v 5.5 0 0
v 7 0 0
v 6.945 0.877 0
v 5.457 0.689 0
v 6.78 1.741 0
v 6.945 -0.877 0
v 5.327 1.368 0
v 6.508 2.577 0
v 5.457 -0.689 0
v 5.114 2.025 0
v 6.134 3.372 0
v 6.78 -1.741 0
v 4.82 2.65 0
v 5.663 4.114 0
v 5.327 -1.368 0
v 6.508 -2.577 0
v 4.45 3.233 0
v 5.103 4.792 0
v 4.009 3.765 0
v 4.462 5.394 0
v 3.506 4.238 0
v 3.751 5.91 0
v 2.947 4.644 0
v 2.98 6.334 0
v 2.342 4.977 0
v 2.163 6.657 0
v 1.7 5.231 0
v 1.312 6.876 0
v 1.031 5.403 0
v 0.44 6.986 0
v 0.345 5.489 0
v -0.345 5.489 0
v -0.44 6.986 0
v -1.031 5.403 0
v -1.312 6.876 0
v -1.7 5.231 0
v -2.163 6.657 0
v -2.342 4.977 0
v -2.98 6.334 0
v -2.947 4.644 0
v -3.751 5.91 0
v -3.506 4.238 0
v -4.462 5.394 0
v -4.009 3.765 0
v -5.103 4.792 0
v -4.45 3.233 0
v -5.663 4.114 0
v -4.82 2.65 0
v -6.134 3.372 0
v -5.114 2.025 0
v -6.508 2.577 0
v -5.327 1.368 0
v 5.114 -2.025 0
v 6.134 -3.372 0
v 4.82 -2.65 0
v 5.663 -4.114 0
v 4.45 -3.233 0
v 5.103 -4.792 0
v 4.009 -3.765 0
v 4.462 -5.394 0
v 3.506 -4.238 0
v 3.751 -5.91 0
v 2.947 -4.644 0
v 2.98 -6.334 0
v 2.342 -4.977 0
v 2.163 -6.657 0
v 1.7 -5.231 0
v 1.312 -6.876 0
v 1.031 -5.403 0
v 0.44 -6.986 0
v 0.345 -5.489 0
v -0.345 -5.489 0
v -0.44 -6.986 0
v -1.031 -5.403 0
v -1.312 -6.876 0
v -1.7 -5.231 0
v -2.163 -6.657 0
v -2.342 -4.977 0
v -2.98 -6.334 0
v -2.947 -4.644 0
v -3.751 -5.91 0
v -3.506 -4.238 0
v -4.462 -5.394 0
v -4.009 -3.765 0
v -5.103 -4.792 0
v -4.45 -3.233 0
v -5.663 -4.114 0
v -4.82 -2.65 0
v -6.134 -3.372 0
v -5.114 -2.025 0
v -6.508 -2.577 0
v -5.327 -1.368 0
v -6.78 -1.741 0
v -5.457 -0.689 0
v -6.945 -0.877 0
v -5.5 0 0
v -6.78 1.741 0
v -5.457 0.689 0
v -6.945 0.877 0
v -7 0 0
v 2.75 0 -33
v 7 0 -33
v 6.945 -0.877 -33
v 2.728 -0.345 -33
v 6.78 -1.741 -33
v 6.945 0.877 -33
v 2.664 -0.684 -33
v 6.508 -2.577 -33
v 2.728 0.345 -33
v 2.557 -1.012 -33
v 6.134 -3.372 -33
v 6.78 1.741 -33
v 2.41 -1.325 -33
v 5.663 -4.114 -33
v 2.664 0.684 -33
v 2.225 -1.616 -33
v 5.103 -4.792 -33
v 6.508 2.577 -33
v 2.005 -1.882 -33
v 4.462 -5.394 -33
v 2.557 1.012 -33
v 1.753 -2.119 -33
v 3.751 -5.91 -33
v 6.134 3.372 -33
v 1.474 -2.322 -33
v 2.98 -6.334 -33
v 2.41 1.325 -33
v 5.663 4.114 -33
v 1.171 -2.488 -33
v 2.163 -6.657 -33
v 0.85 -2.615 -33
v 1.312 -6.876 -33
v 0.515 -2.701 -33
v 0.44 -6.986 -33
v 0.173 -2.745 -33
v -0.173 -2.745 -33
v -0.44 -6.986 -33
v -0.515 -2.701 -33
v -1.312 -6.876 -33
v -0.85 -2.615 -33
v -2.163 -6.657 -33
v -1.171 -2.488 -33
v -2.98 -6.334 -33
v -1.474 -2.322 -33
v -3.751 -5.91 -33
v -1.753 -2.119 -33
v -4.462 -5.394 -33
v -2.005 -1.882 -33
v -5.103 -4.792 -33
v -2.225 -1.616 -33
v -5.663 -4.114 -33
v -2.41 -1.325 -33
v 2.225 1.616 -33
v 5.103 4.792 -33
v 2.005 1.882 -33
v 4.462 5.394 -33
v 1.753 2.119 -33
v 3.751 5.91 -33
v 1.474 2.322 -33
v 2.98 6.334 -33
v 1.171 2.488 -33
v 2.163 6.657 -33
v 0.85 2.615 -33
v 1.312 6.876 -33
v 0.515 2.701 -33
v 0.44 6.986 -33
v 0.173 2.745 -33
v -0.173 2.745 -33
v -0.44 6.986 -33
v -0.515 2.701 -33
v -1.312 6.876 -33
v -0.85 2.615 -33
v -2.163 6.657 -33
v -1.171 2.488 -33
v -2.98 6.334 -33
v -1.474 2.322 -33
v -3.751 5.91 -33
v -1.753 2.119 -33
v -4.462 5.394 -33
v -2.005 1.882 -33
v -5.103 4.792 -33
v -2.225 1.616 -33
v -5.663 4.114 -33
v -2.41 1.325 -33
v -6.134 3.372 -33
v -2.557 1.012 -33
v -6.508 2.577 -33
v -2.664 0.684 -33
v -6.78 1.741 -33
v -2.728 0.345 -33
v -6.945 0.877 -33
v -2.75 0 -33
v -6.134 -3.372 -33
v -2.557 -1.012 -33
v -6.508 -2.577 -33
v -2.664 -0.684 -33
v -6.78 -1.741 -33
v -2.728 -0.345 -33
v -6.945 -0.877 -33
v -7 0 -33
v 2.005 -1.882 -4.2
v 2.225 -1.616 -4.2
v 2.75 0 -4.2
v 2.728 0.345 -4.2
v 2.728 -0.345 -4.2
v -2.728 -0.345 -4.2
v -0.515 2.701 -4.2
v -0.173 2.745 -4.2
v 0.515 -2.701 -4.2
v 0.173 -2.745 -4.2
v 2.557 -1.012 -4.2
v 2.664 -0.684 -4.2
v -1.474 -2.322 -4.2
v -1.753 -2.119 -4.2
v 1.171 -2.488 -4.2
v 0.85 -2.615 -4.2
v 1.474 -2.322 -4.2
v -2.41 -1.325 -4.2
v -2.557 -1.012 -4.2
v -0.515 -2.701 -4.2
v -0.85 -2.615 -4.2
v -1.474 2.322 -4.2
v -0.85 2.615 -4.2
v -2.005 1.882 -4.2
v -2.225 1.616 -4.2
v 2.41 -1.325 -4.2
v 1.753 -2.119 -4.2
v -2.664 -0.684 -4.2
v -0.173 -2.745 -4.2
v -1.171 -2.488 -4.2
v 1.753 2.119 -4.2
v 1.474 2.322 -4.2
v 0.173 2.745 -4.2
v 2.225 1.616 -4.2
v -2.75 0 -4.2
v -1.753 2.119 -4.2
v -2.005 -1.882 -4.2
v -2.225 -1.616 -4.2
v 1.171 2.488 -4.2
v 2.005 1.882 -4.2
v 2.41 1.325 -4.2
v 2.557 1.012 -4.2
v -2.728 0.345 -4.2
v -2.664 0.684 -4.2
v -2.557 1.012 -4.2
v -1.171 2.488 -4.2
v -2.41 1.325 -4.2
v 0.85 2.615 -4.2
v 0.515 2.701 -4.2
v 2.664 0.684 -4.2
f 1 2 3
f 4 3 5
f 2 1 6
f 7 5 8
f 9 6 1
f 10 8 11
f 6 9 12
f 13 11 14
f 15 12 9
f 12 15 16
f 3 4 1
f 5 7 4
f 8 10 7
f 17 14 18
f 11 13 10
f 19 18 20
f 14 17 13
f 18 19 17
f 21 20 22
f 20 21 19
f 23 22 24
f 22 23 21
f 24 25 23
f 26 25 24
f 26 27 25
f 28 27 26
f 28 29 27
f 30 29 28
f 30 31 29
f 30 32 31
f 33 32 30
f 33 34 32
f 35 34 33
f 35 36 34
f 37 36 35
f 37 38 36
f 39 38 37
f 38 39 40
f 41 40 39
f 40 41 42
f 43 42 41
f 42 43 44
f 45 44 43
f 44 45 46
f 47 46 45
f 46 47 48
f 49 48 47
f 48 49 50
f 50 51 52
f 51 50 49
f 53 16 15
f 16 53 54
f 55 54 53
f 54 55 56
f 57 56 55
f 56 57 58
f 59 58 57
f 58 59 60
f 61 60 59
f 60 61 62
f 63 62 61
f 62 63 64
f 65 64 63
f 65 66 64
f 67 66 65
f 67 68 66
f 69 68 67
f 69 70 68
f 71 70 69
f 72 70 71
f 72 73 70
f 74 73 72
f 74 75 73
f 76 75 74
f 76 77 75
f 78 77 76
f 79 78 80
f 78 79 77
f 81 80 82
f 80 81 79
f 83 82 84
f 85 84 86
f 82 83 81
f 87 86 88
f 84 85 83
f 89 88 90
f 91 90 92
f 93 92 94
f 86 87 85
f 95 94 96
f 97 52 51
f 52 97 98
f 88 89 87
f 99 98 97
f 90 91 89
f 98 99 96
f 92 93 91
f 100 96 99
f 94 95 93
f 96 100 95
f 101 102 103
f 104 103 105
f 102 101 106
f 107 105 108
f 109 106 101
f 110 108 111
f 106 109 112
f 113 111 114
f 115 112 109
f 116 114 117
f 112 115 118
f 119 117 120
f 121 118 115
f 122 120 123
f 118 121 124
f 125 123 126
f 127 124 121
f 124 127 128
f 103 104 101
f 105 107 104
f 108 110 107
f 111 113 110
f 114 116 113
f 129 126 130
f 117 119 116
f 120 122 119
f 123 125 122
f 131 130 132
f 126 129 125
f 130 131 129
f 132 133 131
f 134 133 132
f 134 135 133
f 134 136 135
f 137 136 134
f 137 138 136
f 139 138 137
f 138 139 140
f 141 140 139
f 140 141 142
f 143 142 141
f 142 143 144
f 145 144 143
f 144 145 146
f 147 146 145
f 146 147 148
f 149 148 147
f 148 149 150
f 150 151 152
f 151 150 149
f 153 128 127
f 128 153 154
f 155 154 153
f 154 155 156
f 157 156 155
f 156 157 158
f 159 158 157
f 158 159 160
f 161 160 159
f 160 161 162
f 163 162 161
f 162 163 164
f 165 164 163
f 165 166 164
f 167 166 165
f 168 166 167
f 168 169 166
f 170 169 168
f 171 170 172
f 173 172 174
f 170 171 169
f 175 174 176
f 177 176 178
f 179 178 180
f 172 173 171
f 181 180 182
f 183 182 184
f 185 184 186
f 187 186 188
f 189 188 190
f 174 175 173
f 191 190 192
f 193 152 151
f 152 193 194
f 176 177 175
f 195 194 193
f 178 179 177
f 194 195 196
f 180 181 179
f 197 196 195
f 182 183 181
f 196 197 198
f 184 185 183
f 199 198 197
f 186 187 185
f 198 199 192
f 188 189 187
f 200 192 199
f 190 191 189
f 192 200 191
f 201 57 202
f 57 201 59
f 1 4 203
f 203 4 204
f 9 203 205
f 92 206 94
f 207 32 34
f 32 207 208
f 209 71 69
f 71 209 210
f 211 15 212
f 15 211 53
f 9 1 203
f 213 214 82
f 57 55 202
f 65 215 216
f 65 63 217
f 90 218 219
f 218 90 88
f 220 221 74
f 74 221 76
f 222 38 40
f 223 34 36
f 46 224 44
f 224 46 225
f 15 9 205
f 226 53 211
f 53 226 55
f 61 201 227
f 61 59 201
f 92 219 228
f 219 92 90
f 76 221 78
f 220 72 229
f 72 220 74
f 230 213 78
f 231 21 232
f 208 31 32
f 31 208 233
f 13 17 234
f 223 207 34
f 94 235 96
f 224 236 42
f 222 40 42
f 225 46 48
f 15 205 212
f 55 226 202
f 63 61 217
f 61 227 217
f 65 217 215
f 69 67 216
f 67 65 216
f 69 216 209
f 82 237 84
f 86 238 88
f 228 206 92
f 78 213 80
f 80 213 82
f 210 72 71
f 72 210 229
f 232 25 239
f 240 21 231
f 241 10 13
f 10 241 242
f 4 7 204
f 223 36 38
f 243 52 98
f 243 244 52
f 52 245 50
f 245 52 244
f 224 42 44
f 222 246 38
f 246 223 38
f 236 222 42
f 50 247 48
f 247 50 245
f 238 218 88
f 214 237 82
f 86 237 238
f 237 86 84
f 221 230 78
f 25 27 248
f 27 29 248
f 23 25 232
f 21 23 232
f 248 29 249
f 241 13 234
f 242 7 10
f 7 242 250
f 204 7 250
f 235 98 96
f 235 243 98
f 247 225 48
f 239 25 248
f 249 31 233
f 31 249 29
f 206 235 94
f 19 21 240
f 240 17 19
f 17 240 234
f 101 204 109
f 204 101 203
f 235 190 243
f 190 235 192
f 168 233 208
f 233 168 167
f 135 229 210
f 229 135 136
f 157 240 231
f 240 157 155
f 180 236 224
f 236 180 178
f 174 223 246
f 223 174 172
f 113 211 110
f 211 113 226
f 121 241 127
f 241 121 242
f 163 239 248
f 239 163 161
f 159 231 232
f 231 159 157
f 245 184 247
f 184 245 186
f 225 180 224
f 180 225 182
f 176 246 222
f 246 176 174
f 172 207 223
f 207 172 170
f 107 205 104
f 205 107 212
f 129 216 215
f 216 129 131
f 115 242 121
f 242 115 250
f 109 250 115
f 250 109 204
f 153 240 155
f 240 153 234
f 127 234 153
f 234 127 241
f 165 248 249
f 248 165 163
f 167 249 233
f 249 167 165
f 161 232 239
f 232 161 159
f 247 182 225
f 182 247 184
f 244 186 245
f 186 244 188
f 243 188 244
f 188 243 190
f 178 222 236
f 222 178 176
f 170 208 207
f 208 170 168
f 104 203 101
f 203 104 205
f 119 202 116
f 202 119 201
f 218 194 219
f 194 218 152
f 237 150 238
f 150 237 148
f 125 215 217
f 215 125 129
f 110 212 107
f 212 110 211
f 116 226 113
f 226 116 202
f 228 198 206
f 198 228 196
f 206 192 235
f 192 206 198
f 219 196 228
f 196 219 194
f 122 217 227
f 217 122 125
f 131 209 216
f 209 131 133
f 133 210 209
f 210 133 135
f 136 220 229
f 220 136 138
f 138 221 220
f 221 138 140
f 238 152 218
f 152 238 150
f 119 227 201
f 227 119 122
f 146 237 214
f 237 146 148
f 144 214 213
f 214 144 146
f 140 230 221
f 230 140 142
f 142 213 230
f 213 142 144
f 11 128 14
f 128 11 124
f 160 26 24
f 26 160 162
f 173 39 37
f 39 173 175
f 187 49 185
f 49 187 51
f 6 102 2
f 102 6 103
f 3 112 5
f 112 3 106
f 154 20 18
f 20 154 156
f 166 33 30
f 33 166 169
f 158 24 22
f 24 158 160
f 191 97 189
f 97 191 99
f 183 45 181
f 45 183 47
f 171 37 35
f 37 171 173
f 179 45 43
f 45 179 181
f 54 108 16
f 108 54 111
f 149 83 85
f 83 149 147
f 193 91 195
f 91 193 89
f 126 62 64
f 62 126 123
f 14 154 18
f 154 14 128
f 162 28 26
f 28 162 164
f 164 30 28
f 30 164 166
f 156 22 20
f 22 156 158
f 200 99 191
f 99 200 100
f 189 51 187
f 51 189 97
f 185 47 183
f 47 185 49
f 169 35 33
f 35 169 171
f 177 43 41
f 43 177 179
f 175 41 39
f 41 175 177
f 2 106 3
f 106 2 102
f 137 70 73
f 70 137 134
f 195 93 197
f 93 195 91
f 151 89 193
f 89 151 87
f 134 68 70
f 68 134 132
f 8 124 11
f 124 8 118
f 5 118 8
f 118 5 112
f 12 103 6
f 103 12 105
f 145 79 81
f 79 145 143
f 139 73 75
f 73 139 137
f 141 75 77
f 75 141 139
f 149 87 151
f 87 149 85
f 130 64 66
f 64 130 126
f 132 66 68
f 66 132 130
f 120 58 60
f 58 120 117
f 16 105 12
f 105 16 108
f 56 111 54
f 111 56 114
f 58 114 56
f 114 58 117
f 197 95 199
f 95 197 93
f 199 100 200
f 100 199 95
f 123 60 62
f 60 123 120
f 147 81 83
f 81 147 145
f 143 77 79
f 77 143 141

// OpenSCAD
$fn = 50;


difference() {
	union() {
		translate(v = [0, 0, -33.0000000000]) {
			cylinder(h = 33, r = 7.0000000000);
		}
		cylinder(h = 0, r = 10.0000000000);
	}
	union() {
		translate(v = [0, 0, 0]) {
			rotate(a = [0, 0, 0]) {
				difference() {
					union() {
						#translate(v = [0, 0, -33.0000000000]) {
							cylinder(h = 33, r = 2.2500000000);
						}
						#translate(v = [0, 0, -4.2000000000]) {
							cylinder(h = 4.2000000000, r = 7.0000000000, r1 = 2.7500000000, r2 = 5.5000000000);
						}
						#translate(v = [0, 0, -33.0000000000]) {
							cylinder(h = 33, r = 2.7500000000);
						}
						#translate(v = [0, 0, -33.0000000000]) {
							cylinder(h = 33, r = 2.2500000000);
						}
					}
					union();
				}
			}
		}
	}
}
